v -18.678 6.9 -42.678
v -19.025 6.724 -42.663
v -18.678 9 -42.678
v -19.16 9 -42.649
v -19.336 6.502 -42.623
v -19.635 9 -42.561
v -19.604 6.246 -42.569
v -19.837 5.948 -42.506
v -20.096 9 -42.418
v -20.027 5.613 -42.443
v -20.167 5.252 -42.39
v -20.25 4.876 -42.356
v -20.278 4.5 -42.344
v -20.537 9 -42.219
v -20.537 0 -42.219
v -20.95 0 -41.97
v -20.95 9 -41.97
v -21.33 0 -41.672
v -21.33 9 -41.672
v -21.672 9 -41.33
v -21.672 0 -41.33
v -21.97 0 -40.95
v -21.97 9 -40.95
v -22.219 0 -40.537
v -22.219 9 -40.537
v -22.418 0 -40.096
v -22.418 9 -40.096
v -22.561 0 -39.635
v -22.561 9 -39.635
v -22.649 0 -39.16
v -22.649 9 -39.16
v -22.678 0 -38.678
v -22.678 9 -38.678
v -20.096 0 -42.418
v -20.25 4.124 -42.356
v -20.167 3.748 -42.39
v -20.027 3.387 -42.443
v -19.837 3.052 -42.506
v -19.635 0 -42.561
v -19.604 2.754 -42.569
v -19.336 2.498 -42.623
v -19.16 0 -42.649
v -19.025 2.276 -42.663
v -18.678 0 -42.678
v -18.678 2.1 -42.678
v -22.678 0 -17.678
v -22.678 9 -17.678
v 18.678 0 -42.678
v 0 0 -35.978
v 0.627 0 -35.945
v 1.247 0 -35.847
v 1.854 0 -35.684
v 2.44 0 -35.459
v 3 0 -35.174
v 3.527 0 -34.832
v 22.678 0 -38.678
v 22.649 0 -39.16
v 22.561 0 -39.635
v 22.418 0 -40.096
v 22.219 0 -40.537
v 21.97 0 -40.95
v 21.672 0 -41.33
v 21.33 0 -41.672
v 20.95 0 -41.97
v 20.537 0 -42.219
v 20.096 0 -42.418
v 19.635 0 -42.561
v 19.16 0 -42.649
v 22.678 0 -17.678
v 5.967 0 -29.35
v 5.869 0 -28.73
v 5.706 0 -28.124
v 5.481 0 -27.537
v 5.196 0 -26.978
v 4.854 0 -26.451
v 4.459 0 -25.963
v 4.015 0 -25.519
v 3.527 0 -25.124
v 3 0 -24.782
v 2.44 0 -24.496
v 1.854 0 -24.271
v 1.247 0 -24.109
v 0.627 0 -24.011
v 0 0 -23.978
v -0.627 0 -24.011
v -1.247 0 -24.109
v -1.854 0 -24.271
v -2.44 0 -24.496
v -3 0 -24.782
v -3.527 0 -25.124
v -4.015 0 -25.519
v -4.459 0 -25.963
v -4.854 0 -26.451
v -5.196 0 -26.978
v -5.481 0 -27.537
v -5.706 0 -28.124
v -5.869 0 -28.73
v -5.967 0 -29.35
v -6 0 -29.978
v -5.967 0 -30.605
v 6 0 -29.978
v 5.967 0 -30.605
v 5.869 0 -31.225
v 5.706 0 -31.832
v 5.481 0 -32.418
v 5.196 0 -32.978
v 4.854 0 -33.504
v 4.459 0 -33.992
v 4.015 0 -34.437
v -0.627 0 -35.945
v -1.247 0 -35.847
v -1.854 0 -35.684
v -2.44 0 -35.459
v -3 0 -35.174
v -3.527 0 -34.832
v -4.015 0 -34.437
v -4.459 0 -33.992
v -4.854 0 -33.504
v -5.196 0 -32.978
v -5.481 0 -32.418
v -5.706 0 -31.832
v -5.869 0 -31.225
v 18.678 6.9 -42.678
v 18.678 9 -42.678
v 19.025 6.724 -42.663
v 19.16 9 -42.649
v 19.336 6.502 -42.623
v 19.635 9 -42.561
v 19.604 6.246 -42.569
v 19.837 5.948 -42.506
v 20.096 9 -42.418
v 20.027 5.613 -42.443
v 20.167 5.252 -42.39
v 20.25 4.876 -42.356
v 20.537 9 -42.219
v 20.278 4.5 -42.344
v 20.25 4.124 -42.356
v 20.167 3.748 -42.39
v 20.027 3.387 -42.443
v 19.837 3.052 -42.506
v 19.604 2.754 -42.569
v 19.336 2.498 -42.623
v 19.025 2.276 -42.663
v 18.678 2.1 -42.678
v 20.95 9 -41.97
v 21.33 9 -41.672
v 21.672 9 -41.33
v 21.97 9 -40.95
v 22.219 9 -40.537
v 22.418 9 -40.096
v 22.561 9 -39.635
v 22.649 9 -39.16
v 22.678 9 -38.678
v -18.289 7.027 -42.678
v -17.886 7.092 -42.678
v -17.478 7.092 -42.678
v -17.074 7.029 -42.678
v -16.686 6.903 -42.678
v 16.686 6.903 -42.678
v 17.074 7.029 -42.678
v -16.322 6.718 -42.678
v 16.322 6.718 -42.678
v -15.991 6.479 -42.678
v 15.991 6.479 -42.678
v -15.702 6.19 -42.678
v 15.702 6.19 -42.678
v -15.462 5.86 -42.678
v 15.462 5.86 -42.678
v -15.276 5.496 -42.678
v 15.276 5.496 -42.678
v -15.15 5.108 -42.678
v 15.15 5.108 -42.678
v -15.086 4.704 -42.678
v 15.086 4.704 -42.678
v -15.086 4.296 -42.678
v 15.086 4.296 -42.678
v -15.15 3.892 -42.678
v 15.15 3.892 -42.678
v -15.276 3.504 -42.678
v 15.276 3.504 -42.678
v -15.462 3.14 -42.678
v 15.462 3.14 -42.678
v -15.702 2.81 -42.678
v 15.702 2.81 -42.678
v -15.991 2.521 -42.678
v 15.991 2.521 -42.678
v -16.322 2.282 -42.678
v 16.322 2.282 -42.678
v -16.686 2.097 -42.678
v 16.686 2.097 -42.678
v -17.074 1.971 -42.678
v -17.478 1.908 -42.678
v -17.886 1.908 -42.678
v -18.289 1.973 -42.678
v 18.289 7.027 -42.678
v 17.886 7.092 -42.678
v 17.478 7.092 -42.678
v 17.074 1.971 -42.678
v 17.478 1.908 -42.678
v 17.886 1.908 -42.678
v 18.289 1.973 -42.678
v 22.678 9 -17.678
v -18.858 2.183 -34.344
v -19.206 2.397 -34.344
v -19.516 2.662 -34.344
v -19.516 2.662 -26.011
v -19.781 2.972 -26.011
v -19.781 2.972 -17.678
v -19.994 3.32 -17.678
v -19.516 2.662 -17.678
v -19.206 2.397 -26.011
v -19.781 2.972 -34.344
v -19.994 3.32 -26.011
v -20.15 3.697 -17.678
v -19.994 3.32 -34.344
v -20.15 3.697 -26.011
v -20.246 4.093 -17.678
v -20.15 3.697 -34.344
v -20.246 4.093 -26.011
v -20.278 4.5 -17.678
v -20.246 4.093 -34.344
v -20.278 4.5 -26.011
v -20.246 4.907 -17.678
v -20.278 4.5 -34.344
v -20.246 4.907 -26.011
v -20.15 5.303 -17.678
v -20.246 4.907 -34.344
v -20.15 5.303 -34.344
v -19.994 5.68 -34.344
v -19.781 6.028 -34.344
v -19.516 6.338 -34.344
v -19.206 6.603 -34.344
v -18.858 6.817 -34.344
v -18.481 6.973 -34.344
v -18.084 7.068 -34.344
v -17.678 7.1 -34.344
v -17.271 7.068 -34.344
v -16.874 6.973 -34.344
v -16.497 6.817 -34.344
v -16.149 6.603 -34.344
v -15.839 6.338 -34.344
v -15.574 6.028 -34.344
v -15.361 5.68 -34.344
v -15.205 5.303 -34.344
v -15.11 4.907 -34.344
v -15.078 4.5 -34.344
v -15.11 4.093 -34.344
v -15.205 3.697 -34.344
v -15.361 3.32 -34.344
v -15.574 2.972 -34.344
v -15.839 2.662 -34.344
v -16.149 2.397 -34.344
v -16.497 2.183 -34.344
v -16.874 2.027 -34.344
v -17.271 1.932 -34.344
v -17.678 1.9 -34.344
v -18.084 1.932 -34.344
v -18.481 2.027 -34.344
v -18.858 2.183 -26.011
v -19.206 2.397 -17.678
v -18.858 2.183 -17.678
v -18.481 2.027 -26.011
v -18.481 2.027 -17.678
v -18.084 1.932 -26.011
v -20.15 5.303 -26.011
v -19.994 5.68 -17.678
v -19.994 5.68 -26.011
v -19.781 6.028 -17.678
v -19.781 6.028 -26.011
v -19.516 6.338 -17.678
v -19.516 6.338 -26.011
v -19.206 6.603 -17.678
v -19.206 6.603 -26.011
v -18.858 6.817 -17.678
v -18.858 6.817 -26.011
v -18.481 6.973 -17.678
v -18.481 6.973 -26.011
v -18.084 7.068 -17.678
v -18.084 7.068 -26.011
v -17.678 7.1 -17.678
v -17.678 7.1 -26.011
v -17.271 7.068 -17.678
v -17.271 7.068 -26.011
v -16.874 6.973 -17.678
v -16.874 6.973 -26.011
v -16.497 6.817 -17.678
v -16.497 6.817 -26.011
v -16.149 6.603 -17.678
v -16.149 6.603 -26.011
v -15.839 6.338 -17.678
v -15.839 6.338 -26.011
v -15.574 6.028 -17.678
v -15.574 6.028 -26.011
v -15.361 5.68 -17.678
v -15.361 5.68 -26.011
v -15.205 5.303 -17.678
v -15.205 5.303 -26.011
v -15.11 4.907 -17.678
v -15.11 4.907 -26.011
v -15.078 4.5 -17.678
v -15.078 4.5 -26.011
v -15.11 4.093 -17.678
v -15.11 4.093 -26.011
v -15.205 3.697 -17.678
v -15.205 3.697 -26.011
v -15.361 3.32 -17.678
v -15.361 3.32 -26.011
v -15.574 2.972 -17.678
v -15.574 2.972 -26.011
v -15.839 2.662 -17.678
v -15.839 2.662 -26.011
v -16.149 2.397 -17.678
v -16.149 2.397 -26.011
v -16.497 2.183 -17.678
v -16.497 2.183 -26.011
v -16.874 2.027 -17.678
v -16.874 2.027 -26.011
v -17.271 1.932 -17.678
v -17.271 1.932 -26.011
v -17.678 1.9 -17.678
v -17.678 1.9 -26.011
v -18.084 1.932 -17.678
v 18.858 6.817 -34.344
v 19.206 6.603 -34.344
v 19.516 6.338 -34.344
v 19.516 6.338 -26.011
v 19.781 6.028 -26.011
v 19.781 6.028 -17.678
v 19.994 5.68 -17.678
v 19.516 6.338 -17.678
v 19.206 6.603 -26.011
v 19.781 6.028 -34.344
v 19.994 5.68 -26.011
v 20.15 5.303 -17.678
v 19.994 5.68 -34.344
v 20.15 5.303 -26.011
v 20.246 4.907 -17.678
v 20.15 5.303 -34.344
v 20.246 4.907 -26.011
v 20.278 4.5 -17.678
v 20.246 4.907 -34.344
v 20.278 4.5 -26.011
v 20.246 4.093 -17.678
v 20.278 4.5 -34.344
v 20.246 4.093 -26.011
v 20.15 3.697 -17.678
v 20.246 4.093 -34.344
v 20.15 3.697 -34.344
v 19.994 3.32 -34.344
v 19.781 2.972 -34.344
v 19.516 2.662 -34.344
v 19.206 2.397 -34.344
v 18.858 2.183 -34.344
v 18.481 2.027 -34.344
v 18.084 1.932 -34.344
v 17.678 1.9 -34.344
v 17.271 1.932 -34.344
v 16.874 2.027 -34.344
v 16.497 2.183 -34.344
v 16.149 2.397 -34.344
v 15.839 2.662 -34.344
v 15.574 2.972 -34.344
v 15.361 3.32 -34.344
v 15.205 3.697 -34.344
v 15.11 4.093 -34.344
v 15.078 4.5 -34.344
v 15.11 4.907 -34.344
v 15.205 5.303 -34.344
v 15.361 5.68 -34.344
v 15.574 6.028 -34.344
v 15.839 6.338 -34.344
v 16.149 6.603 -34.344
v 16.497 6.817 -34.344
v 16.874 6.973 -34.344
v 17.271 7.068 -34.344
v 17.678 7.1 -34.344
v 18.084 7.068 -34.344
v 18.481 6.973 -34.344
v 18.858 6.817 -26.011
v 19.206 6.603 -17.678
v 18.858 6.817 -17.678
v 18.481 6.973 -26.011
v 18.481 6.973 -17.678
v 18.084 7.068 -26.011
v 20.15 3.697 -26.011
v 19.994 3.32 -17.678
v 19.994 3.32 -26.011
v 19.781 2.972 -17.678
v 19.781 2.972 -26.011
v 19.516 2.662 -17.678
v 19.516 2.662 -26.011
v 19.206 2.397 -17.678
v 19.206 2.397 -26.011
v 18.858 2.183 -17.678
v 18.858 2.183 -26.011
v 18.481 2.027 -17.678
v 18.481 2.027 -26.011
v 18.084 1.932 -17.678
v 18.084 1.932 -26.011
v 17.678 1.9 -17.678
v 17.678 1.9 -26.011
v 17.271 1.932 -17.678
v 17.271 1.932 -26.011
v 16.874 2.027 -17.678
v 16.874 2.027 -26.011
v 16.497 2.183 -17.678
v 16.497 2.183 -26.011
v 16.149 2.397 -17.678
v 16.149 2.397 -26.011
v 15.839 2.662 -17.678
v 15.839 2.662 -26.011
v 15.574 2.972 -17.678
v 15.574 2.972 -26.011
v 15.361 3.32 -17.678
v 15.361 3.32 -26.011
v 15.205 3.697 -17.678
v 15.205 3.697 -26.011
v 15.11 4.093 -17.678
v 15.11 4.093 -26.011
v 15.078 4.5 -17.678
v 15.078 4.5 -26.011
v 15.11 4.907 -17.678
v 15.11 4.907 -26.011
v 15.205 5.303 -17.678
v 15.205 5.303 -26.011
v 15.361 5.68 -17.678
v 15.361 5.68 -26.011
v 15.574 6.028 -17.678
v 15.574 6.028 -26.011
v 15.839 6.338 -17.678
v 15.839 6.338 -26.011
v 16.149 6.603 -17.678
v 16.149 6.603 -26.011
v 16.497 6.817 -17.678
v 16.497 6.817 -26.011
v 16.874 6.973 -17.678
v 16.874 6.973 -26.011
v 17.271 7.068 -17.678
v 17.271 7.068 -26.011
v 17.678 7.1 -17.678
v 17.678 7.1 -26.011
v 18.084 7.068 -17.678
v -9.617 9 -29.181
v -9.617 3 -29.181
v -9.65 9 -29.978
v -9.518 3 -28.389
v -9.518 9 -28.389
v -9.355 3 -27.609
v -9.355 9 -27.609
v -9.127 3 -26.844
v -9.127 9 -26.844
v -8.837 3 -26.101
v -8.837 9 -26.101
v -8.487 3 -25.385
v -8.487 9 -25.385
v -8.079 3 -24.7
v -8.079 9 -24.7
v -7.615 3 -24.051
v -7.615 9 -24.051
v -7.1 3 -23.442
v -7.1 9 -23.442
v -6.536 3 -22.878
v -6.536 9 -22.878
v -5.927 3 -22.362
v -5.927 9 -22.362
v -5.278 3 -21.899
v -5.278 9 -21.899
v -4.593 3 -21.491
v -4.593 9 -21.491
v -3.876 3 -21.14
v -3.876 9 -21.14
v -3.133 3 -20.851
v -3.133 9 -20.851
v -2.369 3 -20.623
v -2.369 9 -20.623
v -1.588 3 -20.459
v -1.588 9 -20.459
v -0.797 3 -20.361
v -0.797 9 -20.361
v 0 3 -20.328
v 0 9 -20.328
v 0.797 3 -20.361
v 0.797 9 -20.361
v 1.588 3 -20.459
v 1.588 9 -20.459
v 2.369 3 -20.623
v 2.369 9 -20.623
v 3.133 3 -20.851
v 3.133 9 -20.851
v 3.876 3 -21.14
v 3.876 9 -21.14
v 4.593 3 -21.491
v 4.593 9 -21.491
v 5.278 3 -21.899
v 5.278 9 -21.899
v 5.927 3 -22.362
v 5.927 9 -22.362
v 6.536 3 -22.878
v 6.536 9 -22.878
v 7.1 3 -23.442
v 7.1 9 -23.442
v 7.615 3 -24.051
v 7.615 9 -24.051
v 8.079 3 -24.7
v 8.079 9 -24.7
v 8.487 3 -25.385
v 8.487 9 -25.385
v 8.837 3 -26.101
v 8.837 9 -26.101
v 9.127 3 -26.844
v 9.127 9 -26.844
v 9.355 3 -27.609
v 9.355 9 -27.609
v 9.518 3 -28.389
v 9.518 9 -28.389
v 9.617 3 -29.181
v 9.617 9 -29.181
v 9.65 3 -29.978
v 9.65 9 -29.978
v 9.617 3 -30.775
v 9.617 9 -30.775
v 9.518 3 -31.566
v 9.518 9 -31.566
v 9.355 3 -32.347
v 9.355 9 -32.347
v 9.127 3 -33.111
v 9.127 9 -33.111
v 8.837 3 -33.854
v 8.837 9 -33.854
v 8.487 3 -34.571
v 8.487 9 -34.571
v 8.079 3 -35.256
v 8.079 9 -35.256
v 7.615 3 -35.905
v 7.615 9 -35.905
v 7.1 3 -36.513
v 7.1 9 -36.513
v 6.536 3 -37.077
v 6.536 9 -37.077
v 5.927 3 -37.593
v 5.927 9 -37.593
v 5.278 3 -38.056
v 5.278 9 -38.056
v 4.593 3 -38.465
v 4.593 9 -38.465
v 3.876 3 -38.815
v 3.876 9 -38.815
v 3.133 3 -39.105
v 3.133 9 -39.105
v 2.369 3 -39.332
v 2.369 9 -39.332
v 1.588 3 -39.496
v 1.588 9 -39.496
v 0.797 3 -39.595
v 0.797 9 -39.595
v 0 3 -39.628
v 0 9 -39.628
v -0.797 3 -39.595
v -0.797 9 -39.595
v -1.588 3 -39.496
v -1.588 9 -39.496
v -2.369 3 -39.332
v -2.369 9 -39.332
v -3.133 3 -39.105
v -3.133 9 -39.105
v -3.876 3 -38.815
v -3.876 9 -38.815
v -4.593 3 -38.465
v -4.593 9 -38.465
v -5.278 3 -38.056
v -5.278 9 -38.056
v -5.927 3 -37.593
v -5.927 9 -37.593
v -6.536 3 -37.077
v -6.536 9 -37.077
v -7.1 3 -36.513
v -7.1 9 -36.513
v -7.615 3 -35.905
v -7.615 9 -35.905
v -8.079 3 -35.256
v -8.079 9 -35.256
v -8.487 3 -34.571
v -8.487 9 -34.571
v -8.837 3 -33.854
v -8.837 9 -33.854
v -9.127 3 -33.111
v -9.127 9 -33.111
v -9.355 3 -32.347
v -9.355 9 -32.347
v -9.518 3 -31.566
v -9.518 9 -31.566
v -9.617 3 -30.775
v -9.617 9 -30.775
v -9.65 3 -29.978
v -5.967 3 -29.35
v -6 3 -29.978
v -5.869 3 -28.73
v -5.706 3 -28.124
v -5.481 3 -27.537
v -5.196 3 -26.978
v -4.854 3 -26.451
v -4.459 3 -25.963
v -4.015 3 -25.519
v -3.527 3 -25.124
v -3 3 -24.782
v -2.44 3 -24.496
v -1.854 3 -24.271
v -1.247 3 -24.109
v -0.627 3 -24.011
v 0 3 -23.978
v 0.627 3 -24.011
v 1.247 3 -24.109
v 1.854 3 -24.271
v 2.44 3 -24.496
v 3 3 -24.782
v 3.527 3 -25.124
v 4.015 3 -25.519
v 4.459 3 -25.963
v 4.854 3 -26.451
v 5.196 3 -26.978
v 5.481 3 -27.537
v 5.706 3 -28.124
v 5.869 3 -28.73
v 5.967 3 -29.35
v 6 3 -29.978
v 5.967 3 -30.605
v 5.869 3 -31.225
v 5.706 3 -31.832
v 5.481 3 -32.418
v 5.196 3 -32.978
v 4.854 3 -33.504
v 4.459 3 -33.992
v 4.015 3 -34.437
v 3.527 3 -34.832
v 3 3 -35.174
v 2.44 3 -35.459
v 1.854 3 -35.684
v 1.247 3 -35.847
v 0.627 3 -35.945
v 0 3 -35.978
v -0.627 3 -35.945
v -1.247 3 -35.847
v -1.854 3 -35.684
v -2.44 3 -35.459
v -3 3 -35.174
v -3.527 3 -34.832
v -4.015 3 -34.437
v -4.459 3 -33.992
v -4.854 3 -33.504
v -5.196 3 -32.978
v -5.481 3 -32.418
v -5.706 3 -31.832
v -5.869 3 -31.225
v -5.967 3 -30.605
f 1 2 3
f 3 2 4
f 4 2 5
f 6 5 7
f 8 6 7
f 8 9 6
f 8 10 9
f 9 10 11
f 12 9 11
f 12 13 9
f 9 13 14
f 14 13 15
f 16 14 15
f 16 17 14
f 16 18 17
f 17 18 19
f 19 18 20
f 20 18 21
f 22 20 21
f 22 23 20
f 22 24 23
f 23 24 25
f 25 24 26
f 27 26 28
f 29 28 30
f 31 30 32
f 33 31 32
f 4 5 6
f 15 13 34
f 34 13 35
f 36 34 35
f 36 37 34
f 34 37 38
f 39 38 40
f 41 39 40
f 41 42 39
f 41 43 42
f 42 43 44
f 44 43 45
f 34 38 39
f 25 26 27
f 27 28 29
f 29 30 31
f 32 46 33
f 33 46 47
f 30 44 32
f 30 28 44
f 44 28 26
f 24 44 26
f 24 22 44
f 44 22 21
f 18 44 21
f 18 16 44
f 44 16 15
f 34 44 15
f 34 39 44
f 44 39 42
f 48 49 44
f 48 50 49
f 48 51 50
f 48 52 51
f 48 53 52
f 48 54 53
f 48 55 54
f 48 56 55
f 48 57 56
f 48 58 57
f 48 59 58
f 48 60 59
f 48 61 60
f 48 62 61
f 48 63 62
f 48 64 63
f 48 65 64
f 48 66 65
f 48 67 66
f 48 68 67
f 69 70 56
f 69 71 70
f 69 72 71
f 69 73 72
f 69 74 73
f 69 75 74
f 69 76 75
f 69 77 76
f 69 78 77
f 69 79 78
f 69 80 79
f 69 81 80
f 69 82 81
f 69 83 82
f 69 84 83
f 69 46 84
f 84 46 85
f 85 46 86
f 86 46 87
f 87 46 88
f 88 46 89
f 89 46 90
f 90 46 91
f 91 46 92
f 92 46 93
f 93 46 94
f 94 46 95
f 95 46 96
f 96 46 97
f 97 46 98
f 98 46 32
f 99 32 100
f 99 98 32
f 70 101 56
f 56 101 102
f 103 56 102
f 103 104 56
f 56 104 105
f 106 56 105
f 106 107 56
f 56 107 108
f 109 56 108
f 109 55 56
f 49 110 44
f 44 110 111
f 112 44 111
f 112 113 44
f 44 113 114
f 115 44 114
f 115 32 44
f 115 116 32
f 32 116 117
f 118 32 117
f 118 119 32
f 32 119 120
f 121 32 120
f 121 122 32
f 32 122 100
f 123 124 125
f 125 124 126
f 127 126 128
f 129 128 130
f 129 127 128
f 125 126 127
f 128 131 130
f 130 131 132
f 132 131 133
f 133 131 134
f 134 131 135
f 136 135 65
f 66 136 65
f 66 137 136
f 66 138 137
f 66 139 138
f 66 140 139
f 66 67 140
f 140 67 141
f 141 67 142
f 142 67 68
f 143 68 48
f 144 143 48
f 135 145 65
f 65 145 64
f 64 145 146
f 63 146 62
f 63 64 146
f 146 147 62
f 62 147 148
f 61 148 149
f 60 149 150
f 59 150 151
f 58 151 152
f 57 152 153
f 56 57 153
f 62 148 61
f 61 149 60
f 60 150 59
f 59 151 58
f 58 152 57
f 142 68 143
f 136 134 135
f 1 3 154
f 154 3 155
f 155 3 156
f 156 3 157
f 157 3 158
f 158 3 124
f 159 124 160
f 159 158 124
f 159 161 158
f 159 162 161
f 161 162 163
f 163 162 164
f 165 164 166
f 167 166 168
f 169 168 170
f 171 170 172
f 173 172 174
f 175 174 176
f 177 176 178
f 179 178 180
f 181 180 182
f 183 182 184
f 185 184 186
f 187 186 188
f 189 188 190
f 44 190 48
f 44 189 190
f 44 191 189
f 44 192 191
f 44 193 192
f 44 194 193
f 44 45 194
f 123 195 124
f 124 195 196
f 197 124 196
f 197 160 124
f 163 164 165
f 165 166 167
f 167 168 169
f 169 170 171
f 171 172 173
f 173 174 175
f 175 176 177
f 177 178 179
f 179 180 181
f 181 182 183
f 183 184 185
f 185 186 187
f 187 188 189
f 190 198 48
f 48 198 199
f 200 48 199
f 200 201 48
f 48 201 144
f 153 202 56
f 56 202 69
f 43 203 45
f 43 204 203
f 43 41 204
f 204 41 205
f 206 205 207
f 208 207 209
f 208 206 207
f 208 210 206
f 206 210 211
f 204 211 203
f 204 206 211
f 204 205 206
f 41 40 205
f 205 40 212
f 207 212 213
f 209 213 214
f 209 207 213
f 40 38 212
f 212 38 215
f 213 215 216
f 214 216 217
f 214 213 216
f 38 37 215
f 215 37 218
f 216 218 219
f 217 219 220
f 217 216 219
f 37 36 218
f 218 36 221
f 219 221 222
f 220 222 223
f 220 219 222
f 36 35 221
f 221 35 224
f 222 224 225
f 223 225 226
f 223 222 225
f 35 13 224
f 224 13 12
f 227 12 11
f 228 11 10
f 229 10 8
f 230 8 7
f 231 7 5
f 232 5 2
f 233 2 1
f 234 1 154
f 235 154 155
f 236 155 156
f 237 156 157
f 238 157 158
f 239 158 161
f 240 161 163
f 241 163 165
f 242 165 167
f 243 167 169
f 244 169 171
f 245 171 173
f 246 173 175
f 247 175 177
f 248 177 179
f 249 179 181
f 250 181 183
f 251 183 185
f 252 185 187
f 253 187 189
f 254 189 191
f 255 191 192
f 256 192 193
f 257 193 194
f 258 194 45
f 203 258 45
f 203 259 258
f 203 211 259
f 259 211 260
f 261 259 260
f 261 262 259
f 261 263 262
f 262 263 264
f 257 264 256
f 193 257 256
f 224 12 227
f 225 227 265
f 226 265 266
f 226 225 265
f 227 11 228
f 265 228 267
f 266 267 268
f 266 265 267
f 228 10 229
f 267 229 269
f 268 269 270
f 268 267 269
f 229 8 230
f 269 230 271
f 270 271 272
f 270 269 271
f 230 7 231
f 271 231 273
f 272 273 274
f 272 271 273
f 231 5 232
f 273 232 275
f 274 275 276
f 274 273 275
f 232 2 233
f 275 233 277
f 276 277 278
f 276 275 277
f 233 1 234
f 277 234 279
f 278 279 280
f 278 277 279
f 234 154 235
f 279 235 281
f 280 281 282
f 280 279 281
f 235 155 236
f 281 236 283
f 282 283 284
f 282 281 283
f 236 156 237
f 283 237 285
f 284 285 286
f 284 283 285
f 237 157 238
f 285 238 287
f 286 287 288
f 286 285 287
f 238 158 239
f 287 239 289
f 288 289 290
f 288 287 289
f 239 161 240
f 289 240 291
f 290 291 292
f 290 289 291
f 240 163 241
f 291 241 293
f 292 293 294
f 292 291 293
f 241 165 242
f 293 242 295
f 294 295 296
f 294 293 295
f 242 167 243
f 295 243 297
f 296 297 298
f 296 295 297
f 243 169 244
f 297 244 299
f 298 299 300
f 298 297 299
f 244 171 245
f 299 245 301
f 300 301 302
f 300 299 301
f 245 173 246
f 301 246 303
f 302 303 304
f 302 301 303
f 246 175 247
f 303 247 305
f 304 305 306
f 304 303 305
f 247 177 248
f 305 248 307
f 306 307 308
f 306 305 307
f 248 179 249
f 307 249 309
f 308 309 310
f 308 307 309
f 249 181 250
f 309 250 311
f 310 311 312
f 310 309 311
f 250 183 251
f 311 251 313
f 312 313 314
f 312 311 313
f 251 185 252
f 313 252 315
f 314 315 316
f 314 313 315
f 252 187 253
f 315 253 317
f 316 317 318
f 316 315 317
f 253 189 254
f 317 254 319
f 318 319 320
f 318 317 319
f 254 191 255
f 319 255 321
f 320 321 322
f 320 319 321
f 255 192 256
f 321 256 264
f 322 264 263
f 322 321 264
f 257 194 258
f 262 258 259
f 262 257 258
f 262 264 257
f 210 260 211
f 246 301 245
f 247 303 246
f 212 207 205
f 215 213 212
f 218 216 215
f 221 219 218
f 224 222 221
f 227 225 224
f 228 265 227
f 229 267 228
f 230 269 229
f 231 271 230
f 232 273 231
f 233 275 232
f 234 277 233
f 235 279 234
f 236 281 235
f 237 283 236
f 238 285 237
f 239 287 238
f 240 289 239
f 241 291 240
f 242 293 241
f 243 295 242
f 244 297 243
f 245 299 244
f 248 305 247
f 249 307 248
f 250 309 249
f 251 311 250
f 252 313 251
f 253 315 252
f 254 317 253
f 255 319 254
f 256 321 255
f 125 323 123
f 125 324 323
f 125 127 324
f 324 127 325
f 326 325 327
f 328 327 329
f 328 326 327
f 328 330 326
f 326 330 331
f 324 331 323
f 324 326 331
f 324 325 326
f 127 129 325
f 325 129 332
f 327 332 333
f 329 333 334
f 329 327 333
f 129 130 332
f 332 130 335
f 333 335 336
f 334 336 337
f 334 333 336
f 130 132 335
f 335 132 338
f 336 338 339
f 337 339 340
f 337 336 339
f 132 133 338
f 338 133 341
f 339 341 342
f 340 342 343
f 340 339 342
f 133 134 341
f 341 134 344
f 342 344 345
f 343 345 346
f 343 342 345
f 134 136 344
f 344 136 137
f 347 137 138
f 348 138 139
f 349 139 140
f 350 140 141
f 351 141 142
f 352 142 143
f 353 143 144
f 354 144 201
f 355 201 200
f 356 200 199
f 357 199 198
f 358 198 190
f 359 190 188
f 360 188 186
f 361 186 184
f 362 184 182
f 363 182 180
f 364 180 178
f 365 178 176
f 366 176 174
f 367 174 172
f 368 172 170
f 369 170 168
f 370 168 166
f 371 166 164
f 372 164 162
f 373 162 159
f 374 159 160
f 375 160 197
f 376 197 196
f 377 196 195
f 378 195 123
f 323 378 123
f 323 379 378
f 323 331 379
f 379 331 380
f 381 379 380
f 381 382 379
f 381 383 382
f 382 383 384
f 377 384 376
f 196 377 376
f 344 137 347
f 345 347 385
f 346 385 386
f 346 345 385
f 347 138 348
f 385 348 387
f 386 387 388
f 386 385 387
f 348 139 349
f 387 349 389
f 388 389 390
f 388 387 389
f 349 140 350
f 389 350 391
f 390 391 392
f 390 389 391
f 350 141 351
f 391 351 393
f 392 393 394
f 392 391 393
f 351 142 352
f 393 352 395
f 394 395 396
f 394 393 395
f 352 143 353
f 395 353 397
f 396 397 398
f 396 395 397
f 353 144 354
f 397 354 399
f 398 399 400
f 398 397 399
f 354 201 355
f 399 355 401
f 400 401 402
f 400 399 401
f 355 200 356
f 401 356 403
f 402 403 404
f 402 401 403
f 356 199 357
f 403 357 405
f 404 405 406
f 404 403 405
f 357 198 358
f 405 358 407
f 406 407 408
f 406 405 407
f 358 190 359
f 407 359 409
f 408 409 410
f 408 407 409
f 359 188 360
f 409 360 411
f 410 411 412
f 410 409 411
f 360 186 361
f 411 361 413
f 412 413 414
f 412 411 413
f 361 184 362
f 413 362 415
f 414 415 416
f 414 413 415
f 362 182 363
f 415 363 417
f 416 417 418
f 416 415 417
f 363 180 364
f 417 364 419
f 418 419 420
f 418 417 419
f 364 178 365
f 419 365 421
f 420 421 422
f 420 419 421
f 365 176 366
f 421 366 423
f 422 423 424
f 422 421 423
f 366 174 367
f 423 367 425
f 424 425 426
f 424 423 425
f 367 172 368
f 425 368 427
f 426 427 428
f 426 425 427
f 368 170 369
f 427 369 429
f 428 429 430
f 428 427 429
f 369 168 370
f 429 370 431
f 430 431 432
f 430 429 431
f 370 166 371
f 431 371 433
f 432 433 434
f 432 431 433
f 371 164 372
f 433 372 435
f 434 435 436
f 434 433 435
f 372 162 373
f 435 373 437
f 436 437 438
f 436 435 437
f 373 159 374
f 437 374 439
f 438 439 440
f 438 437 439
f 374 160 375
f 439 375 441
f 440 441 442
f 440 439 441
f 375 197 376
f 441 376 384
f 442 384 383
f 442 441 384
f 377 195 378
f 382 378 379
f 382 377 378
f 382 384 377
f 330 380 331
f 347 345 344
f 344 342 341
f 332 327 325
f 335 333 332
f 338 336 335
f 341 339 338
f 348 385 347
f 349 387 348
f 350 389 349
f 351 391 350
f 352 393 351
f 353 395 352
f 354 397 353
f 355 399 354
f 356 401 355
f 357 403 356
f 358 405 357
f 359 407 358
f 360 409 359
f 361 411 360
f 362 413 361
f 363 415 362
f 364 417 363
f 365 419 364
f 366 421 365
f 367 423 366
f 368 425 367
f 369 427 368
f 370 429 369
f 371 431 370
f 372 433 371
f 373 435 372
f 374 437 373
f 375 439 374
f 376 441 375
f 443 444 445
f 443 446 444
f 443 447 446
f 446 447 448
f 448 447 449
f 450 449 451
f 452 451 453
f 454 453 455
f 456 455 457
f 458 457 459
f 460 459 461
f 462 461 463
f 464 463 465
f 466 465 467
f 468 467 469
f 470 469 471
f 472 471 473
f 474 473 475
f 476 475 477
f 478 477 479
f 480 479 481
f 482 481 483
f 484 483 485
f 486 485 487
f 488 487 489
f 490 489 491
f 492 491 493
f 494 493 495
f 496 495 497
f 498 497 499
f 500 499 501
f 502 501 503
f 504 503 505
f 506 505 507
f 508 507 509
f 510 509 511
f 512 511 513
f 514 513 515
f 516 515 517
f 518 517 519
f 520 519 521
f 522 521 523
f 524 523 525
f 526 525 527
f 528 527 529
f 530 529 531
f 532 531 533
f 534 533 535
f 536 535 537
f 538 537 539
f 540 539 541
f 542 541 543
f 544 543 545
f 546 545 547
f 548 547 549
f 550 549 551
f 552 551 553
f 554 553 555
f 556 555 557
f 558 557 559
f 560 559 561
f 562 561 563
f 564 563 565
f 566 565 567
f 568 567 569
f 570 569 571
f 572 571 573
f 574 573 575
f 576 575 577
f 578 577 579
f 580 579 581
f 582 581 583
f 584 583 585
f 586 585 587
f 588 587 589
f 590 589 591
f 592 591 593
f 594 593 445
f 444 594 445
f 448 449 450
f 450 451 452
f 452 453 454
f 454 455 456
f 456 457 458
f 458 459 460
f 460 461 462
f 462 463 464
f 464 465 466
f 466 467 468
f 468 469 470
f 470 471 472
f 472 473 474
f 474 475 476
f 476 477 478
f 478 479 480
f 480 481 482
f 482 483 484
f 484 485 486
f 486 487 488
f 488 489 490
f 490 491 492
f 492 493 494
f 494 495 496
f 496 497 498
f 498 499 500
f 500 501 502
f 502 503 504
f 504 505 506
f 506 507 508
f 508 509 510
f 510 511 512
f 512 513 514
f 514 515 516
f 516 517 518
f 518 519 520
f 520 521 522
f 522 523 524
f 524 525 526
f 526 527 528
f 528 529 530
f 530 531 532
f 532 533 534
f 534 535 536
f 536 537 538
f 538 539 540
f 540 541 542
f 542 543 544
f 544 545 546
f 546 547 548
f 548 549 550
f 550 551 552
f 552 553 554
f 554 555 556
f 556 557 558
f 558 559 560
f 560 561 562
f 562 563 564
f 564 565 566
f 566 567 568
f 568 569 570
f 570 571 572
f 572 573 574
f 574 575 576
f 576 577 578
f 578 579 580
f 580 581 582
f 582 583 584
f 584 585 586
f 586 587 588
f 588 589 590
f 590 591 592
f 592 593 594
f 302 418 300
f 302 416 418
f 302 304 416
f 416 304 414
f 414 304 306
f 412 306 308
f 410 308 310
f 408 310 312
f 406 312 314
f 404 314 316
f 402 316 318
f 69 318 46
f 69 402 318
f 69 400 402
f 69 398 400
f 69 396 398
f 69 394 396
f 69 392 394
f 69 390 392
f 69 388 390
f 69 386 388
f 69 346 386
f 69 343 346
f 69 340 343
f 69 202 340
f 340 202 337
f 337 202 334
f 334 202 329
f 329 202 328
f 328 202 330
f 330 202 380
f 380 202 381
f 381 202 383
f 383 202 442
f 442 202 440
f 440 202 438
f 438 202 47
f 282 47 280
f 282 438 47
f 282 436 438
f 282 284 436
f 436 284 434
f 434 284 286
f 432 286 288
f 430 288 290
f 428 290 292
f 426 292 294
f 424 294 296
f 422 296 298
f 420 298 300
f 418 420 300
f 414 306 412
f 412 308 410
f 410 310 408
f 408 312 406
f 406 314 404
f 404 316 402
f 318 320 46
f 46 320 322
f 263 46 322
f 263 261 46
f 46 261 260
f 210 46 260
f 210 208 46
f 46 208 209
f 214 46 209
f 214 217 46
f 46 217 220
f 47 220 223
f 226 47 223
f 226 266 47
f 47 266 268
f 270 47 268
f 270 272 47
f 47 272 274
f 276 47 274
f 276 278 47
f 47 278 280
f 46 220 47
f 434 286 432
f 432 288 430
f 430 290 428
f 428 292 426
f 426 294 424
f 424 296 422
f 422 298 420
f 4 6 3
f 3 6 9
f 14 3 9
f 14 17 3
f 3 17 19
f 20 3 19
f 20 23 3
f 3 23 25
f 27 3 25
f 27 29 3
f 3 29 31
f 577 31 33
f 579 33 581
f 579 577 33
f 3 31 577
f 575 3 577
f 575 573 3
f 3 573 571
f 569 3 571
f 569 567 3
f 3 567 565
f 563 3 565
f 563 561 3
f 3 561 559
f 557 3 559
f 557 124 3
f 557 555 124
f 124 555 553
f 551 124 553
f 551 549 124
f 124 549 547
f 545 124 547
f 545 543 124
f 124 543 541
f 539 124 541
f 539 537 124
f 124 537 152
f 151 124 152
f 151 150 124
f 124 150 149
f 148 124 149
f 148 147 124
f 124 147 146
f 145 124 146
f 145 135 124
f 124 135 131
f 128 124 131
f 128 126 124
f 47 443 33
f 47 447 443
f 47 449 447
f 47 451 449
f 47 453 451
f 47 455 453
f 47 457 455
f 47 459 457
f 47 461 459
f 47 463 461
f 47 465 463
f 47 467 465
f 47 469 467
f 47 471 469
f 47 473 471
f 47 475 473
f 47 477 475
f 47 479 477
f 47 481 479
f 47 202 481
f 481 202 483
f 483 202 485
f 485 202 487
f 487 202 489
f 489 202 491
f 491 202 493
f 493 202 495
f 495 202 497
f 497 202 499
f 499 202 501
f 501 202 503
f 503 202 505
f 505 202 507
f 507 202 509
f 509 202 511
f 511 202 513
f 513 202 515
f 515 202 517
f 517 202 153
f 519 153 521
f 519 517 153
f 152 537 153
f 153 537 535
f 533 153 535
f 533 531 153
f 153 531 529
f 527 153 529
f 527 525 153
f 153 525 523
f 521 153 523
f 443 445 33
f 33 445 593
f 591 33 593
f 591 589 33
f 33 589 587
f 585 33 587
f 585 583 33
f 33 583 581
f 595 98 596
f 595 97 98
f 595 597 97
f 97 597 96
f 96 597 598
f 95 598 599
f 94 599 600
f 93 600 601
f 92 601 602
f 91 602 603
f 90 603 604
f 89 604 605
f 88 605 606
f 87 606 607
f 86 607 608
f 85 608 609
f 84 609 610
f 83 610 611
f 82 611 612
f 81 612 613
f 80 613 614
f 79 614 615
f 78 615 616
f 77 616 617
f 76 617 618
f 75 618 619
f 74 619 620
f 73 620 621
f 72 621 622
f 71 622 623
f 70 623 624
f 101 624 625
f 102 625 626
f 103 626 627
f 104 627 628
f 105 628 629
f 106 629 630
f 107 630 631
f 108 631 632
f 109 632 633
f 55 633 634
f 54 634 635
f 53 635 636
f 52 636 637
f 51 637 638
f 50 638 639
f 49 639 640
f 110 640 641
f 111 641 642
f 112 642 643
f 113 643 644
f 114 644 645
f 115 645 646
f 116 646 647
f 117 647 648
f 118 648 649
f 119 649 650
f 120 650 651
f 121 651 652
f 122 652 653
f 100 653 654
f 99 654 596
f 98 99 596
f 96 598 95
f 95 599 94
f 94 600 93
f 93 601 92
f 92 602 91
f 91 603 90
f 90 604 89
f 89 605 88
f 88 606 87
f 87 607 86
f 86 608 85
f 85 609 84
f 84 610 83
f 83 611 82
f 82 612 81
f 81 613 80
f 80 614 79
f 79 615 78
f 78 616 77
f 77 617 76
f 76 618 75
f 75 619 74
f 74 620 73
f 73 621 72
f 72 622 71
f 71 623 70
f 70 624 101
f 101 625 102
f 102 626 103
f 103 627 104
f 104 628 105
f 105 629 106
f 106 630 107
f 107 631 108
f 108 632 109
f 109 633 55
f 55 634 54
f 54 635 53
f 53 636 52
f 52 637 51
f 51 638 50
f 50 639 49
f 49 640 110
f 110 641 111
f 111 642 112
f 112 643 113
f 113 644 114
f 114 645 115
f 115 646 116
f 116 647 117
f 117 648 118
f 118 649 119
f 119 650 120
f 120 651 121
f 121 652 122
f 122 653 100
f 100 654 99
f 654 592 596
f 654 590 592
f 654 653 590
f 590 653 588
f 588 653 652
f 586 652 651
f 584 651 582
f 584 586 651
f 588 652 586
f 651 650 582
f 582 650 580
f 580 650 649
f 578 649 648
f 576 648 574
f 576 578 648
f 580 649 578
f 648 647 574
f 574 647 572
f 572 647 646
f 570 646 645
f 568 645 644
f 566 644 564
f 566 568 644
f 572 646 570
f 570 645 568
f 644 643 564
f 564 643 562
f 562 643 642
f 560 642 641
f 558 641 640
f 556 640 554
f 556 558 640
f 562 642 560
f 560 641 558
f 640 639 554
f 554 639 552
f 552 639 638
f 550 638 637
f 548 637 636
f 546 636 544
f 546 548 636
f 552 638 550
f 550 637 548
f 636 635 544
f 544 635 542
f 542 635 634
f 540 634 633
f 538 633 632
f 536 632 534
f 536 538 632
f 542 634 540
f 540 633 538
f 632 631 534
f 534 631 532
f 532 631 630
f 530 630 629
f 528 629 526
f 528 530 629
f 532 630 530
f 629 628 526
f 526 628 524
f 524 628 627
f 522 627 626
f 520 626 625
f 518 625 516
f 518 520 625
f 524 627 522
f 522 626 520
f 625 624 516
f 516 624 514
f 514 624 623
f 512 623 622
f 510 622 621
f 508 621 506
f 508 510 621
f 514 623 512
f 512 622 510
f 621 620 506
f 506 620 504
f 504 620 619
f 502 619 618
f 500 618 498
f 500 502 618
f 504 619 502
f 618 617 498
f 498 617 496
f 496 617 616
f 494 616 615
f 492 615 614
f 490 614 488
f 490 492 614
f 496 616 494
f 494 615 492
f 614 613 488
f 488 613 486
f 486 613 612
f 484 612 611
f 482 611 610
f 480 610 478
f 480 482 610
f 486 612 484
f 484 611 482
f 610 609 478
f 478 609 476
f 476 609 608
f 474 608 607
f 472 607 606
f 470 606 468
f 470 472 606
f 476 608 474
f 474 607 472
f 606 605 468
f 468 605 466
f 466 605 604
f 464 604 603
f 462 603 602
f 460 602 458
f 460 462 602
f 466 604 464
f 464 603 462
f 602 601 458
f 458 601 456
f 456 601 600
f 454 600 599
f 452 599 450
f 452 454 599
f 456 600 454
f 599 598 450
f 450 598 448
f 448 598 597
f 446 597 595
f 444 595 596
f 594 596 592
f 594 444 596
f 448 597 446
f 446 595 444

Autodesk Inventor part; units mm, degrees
ref_plane "YZ Plane" through (0, 0, 0) normal (1, 0, 0) x (0, 1, 0)
ref_plane "XZ Plane" through (0, 0, 0) normal (0, 1, 0) x (-1, 0, 0)
ref_plane "XY Plane" through (0, 0, 0) normal (0, 0, 1) x (1, 0, 0)
sketch "Sketch1" plane through (0, 0, 0) normal (0, 1, 0) x (-1, 0, 0)
  line L0 (0, 0) -> (0, -10)
  line L1 (0, -10) -> (10, -10)
  line L2 (10, -10) -> (0, 0)
  line L3 (0, -10) -> (-10, -10)
  line L4 (-10, -10) -> (0, 0)
  line L5 (0, 0) -> (17.6777, -17.6777)
  line L6 (0, 0) -> (-17.6777, -17.6777)
  line L7 (-17.6777, -17.6777) -> (17.6777, -17.6777)
  line L8 (0, -17.6777) -> (0, -29.9777)
  circle A0 centre (0, -29.9777) radius 9.65
  circle A1 centre (0, -29.9777) radius 6
  line L9 (17.6777, -17.6777) -> (22.6777, -17.6777)
  line L10 (-17.6777, -17.6777) -> (-22.6777, -17.6777)
  line L11 (-22.6777, -17.6777) -> (-22.6777, -42.6777)
  line L12 (-22.6777, -42.6777) -> (22.6777, -42.6777)
  line L13 (22.6777, -42.6777) -> (22.6777, -17.6777)
  dimension "d0" = 10
  dimension "d1" = 10
  dimension "d2" = 10
  dimension "d3" = 25
  dimension "d4" = 25
  dimension "d5" = 12.3
  dimension "d6" = 19.3
  dimension "d7" = 12
  dimension "d8" = 5
  dimension "d9" = 5
  dimension "d10" = 25
extrude "Extrusion1" add sketch "Sketch1" along normal blind 3 contours A0
extrude "Extrusion2" add sketch "Sketch1" along normal blind 9 contours L9 L13 L12 L11 L10 L7
sketch "Sketch2" plane through (-22.6777, 0, -17.6777) normal (0, 0, 1) x (1, 0, 0)
  line L0 (0, 0) -> (0, 9)
  line L1 (0, 4.5) -> (5, 4.5)
  line L2 (45.3553, 9) -> (45.3553, 0)
  line L3 (45.3553, 4.5) -> (40.3553, 4.5)
  circle A0 centre (5, 4.5) radius 2.6
  circle A1 centre (40.3553, 4.5) radius 2.6
  point P0 (22.6777, 0)
  dimension "d15" = 5
  dimension "d16" = 5
  dimension "d17" = 5.2
  dimension "d18" = 5.2
extrude "Extrusion3" cut sketch "Sketch2" against normal blind 26
fillet "Fillet1" radius 4 2 edges at (22.6777, 4.5, -42.6777) (-22.6777, 4.5, -42.6777)
properties part number "bearing_holder_corner_tb"
